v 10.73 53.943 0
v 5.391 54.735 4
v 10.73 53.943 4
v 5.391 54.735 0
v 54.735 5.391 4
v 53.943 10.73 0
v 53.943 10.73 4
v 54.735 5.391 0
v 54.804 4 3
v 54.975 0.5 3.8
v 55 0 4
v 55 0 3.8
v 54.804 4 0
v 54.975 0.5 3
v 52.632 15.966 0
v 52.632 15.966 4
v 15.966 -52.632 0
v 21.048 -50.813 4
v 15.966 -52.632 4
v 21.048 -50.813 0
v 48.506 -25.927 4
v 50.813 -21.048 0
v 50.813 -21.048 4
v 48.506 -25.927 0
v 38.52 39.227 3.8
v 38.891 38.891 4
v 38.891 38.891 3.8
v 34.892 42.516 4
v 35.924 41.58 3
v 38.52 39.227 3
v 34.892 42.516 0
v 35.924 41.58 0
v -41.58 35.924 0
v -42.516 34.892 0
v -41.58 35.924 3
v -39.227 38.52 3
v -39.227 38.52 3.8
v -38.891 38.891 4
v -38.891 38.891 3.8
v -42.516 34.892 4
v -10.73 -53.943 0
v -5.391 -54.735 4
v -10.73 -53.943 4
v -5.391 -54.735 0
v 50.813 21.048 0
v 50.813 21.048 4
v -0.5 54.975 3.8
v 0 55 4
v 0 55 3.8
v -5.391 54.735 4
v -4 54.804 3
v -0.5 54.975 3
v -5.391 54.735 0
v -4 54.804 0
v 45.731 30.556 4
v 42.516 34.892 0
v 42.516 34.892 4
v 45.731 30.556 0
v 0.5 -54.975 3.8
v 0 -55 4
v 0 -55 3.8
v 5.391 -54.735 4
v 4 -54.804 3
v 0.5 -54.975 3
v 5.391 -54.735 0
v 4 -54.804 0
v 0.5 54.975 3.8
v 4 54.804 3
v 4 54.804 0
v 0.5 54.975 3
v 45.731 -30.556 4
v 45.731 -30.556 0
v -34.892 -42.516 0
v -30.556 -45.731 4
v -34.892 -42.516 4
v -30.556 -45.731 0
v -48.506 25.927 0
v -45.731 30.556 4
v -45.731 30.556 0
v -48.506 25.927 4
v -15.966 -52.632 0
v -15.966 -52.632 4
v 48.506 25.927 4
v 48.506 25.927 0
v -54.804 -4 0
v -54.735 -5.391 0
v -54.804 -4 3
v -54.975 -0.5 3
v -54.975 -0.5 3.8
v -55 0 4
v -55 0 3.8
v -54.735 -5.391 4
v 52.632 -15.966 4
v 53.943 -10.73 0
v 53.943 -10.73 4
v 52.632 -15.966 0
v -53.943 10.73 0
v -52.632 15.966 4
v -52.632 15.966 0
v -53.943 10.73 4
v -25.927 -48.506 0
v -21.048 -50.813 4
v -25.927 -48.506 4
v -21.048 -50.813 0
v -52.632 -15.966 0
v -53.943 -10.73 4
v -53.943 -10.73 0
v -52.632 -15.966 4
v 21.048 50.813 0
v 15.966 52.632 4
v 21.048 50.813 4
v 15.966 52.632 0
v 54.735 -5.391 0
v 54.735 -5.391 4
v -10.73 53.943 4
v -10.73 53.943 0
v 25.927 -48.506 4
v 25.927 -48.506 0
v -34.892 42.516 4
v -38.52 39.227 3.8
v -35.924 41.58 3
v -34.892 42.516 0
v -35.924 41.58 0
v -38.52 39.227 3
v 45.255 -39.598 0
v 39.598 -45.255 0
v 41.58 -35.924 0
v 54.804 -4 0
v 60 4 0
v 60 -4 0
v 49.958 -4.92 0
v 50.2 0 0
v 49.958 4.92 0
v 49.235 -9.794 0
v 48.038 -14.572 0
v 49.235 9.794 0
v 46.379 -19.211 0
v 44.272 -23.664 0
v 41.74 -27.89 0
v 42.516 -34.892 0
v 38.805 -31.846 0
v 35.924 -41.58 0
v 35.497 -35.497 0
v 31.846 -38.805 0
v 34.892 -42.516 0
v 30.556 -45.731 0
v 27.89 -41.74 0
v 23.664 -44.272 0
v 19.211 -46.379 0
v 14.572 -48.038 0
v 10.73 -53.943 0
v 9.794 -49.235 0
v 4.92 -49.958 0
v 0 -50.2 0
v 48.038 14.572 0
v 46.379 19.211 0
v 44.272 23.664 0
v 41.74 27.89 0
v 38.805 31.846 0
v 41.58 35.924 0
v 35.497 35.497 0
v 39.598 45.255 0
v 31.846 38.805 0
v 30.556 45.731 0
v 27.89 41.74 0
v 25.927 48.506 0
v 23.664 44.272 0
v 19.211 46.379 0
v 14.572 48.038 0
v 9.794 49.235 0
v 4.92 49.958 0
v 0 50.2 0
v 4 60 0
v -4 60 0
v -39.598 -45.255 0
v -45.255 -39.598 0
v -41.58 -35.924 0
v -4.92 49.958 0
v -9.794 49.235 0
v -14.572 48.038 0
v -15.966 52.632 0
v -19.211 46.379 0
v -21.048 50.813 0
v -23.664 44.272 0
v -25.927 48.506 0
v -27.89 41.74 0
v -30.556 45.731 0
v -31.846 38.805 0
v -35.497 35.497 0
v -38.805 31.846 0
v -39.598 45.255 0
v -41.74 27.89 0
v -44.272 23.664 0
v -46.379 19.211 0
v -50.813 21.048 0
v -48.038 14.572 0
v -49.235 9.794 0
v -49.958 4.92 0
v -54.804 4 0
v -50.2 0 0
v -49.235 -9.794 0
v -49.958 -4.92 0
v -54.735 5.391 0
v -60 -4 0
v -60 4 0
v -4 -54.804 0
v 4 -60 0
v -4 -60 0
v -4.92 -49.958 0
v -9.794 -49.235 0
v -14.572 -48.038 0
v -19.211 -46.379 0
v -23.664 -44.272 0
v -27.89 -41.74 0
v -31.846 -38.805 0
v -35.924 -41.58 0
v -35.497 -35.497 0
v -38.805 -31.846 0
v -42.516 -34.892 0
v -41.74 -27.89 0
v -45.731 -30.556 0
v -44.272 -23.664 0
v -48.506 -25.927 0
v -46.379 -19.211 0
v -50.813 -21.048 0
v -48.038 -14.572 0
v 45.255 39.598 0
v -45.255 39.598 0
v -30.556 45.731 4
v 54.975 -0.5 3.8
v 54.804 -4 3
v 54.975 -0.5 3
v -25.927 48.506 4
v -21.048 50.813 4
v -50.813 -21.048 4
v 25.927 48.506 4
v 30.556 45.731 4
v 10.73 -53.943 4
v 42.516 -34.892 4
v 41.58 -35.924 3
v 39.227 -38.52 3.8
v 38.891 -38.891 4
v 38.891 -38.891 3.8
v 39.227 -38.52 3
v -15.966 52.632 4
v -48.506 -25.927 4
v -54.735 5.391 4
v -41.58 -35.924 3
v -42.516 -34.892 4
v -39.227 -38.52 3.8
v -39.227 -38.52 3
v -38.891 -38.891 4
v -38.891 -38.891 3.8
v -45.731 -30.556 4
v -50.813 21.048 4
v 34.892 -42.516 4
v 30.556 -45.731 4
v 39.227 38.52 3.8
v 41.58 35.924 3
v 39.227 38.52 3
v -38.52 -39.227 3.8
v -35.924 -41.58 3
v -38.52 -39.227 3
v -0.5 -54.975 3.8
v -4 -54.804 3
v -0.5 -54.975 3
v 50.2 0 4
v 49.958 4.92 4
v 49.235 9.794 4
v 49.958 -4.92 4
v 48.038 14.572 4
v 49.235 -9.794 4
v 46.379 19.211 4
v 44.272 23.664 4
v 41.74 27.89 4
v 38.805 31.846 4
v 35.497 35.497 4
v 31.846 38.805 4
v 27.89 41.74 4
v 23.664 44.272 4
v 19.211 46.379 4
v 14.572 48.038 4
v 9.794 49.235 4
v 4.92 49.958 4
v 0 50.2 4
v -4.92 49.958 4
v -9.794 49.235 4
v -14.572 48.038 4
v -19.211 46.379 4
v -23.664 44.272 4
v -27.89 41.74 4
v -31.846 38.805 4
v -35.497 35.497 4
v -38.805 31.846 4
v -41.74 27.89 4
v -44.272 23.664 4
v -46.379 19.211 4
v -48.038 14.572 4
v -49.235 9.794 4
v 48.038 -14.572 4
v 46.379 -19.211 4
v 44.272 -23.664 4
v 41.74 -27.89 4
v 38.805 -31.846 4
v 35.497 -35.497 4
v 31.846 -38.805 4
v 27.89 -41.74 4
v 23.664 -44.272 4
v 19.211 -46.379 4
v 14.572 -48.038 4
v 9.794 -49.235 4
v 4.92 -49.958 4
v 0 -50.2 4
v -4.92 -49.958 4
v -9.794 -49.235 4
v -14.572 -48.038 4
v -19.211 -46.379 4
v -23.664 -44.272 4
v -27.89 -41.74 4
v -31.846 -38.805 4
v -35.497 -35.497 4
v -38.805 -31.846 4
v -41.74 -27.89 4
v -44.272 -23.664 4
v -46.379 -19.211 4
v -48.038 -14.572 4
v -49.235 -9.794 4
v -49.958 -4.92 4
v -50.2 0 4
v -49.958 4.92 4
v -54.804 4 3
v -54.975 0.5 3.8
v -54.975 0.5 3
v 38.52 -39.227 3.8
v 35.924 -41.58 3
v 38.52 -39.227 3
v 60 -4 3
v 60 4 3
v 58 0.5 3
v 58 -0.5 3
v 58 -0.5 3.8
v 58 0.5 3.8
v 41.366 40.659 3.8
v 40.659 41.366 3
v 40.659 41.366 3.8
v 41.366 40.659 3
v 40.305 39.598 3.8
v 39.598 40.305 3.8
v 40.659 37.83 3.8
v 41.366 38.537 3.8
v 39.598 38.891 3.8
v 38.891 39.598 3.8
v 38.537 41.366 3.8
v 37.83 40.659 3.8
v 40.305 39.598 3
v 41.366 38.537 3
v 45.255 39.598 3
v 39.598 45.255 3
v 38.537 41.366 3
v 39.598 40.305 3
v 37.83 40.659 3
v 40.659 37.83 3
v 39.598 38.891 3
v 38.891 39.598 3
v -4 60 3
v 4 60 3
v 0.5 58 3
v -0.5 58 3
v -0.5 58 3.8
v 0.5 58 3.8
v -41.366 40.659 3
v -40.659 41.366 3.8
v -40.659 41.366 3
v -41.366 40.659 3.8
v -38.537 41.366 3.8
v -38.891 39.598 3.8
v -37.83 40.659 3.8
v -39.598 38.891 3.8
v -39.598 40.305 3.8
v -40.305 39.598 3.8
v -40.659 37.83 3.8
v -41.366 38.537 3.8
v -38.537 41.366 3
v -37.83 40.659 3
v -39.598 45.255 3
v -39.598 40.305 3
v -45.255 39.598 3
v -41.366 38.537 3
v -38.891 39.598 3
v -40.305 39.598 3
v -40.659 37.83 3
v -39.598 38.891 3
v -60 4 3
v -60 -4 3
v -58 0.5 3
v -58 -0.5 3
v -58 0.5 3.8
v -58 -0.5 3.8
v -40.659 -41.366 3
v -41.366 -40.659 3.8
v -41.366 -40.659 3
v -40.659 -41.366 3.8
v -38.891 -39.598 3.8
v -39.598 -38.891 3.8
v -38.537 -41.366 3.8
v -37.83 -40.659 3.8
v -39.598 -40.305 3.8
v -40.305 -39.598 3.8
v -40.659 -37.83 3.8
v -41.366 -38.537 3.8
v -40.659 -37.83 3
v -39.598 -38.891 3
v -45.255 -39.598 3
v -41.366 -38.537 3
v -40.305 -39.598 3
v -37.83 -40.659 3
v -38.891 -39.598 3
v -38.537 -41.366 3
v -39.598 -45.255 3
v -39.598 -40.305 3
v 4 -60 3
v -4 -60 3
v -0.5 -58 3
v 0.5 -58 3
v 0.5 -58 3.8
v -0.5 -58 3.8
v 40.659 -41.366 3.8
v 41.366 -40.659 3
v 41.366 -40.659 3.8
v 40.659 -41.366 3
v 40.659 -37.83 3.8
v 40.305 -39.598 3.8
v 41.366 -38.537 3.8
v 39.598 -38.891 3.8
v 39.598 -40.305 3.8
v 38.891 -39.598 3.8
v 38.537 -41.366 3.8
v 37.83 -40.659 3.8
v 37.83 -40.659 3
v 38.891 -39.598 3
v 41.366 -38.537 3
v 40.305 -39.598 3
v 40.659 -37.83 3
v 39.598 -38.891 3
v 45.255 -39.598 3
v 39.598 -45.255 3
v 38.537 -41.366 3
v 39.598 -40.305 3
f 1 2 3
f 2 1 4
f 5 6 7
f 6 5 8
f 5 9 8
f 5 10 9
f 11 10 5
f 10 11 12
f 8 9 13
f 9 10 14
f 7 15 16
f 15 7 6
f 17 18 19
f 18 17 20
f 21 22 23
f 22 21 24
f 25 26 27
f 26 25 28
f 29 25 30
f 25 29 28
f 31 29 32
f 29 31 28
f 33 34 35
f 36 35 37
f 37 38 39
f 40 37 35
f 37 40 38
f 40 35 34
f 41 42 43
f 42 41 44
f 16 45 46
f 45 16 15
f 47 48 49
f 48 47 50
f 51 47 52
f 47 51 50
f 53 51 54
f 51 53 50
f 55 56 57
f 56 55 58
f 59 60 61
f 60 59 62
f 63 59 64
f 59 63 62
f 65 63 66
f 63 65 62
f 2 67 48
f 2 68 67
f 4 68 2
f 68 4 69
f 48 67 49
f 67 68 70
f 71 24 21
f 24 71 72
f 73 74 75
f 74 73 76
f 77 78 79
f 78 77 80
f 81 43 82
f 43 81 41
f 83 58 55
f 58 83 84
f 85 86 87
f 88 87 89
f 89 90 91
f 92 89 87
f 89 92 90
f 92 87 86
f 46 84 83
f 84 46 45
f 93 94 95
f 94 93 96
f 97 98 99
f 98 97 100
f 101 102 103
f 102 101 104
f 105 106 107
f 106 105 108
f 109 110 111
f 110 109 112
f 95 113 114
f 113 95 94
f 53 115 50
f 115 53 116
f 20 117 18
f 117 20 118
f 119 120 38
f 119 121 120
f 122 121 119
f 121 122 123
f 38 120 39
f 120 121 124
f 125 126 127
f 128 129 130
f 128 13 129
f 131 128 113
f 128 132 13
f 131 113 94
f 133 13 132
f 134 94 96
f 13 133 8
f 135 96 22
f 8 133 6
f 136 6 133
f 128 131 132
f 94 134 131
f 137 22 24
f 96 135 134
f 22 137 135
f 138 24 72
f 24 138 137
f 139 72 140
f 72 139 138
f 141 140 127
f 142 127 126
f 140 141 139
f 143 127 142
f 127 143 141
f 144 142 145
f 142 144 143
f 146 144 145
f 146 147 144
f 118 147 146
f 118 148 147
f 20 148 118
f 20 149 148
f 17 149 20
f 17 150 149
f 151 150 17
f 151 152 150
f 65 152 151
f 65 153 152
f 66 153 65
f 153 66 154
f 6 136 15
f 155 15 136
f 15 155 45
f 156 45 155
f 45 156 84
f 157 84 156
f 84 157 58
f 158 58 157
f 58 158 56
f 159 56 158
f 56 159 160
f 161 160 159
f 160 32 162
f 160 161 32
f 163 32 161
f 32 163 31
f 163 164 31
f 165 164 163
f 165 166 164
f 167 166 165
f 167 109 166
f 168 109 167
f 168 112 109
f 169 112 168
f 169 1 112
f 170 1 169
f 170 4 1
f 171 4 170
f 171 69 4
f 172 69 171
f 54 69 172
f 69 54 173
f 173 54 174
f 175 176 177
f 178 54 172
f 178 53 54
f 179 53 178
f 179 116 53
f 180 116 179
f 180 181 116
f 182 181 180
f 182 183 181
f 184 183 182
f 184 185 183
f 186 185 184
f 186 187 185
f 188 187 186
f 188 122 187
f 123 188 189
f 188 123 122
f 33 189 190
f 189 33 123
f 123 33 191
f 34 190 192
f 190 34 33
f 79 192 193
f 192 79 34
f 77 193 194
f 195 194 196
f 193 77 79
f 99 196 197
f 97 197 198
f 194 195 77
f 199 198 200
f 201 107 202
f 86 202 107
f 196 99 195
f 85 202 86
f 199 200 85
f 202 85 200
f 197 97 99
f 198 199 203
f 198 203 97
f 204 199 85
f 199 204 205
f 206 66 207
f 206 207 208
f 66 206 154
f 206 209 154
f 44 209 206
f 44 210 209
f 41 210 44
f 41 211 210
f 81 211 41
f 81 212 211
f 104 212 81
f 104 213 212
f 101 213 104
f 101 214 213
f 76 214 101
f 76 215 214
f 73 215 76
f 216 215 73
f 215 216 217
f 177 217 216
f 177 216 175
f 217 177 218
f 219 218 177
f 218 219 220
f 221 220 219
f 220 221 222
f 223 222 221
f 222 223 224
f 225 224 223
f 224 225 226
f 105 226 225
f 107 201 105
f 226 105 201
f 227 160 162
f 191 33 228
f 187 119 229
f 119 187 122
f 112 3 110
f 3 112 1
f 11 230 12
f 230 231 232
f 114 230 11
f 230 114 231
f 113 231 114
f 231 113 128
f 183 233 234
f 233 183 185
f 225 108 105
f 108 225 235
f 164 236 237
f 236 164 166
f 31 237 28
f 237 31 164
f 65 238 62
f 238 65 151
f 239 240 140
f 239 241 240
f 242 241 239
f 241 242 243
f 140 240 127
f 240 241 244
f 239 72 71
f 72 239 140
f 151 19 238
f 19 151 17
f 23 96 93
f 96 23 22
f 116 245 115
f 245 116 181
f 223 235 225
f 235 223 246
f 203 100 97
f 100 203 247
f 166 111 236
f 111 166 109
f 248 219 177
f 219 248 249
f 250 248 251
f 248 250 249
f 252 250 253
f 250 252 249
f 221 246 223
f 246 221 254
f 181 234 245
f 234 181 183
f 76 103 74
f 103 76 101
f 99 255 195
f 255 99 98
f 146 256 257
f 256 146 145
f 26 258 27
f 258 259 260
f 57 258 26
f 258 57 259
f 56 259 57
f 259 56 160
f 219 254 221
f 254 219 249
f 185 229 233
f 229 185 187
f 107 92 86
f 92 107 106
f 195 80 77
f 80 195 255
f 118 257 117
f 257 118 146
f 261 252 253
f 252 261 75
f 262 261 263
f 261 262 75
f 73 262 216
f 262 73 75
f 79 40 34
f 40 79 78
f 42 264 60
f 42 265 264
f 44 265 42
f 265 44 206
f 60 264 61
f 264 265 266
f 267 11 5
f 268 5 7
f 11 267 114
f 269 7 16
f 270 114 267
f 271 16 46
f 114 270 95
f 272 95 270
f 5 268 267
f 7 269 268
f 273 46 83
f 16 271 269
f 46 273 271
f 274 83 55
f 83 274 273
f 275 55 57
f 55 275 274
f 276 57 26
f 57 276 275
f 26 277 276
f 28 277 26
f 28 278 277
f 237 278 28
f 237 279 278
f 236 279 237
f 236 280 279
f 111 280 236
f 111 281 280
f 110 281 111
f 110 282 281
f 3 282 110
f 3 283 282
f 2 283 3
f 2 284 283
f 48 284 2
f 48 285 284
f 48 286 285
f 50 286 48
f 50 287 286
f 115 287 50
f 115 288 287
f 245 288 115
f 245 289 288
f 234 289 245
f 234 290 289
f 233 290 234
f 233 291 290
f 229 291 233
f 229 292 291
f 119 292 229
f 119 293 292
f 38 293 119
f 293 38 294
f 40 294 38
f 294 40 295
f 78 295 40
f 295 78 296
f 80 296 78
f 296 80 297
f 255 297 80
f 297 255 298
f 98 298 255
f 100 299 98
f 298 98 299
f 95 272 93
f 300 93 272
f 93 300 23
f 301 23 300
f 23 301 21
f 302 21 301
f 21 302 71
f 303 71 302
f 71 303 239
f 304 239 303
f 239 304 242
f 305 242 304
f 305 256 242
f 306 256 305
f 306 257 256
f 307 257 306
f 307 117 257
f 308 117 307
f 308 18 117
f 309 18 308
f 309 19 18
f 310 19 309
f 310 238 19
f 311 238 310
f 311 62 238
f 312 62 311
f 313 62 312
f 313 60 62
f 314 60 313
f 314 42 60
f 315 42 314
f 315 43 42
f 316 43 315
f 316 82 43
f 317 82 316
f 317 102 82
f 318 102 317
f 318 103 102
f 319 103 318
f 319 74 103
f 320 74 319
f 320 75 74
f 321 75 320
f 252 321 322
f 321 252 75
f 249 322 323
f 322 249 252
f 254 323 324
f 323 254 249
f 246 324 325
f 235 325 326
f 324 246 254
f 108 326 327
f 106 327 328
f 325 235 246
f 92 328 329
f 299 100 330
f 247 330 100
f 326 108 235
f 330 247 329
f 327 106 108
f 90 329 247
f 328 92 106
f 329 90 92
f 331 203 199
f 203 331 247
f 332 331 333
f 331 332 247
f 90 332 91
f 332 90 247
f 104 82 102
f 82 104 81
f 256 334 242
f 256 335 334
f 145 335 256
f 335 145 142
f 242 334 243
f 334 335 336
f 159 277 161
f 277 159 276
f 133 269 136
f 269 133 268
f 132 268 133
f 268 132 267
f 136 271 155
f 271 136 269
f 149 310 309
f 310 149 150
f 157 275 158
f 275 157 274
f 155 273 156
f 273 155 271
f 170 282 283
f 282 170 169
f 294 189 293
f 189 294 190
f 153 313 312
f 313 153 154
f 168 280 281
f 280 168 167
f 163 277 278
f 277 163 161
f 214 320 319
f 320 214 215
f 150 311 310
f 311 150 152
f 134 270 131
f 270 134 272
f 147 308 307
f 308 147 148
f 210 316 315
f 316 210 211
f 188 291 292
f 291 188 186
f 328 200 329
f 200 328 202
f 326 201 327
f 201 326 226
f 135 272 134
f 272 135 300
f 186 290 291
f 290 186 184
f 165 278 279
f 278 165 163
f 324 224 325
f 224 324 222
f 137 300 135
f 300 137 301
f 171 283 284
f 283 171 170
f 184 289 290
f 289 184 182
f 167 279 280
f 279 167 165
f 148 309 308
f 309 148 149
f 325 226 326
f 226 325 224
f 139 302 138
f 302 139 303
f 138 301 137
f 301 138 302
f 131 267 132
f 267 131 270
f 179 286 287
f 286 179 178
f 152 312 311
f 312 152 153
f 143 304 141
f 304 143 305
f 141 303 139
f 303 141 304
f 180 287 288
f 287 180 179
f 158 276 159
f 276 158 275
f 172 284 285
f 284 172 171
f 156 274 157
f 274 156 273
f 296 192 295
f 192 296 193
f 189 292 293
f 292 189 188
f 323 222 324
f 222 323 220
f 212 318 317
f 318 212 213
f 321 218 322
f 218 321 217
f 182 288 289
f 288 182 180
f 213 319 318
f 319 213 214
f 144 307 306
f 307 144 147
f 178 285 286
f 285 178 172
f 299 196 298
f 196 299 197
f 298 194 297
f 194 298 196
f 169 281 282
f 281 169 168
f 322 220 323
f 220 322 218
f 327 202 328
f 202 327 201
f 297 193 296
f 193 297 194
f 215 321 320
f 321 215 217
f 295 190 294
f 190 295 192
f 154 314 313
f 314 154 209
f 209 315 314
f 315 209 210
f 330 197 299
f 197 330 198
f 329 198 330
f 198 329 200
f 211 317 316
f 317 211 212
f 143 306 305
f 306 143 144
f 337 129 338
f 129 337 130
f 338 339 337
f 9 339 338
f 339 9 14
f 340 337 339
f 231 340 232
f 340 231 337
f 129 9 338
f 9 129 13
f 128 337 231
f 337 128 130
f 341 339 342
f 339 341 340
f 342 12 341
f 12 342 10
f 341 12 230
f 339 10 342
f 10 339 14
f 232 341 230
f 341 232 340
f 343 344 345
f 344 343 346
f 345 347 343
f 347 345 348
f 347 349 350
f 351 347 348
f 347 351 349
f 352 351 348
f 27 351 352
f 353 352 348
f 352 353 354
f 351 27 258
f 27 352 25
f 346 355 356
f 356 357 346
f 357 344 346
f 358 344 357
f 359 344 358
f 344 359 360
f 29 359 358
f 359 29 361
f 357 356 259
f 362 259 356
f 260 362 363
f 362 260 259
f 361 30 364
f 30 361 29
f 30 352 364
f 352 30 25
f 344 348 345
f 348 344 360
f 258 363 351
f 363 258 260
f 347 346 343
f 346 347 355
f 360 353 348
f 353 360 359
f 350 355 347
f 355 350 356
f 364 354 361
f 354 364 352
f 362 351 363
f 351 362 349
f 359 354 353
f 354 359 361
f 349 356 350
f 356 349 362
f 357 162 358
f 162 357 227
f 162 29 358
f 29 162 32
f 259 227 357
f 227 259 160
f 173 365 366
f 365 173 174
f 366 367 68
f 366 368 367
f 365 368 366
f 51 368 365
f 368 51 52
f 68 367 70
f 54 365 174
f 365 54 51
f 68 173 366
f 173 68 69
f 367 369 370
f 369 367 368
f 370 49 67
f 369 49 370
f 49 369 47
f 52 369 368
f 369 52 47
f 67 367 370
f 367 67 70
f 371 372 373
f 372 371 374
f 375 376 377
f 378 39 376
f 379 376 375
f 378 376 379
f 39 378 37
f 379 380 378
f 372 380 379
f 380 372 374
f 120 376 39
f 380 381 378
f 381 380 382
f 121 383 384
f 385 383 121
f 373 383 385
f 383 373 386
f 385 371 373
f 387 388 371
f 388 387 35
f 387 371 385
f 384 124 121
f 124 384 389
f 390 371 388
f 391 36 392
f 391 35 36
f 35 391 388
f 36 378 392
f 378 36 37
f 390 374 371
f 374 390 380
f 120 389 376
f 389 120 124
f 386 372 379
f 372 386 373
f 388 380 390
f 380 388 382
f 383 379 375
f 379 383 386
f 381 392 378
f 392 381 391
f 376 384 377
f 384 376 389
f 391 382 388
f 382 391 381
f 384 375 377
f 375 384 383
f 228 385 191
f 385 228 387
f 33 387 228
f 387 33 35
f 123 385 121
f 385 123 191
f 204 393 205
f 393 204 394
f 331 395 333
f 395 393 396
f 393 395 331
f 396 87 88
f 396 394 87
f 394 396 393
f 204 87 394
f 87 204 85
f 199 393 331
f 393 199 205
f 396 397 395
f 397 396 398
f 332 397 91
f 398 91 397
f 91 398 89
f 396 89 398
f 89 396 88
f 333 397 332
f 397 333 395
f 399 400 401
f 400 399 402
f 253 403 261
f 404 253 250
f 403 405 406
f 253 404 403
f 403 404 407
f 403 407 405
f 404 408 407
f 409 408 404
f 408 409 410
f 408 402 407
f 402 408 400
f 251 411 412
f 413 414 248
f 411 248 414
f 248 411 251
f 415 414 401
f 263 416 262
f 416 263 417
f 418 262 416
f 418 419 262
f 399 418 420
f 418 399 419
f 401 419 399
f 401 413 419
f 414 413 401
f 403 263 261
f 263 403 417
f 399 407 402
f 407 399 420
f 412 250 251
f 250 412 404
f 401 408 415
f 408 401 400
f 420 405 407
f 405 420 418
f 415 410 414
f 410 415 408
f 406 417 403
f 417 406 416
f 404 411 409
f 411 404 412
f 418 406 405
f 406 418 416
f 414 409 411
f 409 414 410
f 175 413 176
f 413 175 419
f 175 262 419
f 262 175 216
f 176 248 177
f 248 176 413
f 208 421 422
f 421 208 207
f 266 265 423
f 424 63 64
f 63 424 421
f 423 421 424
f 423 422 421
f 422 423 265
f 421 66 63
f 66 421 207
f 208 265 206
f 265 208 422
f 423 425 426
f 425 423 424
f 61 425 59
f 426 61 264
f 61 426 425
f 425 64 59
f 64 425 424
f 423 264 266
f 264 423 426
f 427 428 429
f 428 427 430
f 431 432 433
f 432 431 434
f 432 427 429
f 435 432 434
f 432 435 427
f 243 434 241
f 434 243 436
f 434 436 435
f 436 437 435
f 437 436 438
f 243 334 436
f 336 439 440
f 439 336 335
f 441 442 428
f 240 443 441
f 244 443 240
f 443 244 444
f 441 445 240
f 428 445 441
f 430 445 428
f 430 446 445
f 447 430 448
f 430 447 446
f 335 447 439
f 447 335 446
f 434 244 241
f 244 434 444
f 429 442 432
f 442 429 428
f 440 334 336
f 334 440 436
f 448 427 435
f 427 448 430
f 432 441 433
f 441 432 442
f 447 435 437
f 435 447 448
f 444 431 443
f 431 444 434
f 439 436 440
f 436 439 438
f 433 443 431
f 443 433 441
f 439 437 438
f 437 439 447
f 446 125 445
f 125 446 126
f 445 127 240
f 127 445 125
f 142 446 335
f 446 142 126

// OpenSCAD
// file: parameters.scad
// AFPM-Desk-v1 shared parameters (mm)
// Desktop axial-flux PM learning generator — Faraday induction education only.

$fn = 64;

// --- Magnets (N42 Neo discs) ---
magnet_d = 20;
magnet_h = 3;
magnet_count = 8;
magnet_pcd = 70; // pitch circle diameter

// --- Rotor ---
rotor_od = 100;
rotor_id = 12; // shaft clearance / hub seat
rotor_thickness = 6;
magnet_pocket_clearance = 0.3;
magnet_pocket_depth = magnet_h + 0.2;

// --- Stator ---
stator_od = 110;
stator_id = 30;
stator_thickness = 8;
coil_count = 6;
coil_slot_w = 22;
coil_slot_h = 18;
coil_slot_depth = 6;
coil_pcd = 70;

// --- Shaft / bearings ---
shaft_d = 8;
bearing_od = 22; // 608 skate bearing
bearing_id = 8;
bearing_h = 7;
bearing_seat_od = bearing_od + 0.2;

// --- Base ---
base_w = 160;
base_d = 140;
base_h = 8;
post_h = 55;

// --- Crank ---
crank_arm_len = 80;
crank_arm_w = 16;
crank_arm_t = 8;
handle_d = 12;
handle_len = 40;

// --- Electronics tray ---
tray_w = 70;
tray_d = 50;
tray_h = 12;
// main file
include <parameters.scad>

// Helps place magnets with correct alternating polarity on rotor
module magnet_polarity_jig() {
  difference() {
    cylinder(h=4, d=rotor_od + 10);
    translate([0,0,-0.1])
      cylinder(h=4.2, d=rotor_od + 0.4);
  }
  // labeled stubs pointing to even (N) and odd (S) positions
  for (i = [0:magnet_count-1]) {
    angle = i * 360 / magnet_count;
    rotate([0,0,angle])
      translate([rotor_od/2 + 2, -4, 0]) {
        cube([8, 8, 3]);
        // raised letter-like marks: bar=N, cross=S
        translate([2, 3.5, 3]) {
          if (i % 2 == 0)
            cube([4, 1, 0.8]);
          else {
            cube([4, 1, 0.8]);
            translate([1.5, -1.5, 0]) cube([1, 4, 0.8]);
          }
        }
      }
  }
}

magnet_polarity_jig();
